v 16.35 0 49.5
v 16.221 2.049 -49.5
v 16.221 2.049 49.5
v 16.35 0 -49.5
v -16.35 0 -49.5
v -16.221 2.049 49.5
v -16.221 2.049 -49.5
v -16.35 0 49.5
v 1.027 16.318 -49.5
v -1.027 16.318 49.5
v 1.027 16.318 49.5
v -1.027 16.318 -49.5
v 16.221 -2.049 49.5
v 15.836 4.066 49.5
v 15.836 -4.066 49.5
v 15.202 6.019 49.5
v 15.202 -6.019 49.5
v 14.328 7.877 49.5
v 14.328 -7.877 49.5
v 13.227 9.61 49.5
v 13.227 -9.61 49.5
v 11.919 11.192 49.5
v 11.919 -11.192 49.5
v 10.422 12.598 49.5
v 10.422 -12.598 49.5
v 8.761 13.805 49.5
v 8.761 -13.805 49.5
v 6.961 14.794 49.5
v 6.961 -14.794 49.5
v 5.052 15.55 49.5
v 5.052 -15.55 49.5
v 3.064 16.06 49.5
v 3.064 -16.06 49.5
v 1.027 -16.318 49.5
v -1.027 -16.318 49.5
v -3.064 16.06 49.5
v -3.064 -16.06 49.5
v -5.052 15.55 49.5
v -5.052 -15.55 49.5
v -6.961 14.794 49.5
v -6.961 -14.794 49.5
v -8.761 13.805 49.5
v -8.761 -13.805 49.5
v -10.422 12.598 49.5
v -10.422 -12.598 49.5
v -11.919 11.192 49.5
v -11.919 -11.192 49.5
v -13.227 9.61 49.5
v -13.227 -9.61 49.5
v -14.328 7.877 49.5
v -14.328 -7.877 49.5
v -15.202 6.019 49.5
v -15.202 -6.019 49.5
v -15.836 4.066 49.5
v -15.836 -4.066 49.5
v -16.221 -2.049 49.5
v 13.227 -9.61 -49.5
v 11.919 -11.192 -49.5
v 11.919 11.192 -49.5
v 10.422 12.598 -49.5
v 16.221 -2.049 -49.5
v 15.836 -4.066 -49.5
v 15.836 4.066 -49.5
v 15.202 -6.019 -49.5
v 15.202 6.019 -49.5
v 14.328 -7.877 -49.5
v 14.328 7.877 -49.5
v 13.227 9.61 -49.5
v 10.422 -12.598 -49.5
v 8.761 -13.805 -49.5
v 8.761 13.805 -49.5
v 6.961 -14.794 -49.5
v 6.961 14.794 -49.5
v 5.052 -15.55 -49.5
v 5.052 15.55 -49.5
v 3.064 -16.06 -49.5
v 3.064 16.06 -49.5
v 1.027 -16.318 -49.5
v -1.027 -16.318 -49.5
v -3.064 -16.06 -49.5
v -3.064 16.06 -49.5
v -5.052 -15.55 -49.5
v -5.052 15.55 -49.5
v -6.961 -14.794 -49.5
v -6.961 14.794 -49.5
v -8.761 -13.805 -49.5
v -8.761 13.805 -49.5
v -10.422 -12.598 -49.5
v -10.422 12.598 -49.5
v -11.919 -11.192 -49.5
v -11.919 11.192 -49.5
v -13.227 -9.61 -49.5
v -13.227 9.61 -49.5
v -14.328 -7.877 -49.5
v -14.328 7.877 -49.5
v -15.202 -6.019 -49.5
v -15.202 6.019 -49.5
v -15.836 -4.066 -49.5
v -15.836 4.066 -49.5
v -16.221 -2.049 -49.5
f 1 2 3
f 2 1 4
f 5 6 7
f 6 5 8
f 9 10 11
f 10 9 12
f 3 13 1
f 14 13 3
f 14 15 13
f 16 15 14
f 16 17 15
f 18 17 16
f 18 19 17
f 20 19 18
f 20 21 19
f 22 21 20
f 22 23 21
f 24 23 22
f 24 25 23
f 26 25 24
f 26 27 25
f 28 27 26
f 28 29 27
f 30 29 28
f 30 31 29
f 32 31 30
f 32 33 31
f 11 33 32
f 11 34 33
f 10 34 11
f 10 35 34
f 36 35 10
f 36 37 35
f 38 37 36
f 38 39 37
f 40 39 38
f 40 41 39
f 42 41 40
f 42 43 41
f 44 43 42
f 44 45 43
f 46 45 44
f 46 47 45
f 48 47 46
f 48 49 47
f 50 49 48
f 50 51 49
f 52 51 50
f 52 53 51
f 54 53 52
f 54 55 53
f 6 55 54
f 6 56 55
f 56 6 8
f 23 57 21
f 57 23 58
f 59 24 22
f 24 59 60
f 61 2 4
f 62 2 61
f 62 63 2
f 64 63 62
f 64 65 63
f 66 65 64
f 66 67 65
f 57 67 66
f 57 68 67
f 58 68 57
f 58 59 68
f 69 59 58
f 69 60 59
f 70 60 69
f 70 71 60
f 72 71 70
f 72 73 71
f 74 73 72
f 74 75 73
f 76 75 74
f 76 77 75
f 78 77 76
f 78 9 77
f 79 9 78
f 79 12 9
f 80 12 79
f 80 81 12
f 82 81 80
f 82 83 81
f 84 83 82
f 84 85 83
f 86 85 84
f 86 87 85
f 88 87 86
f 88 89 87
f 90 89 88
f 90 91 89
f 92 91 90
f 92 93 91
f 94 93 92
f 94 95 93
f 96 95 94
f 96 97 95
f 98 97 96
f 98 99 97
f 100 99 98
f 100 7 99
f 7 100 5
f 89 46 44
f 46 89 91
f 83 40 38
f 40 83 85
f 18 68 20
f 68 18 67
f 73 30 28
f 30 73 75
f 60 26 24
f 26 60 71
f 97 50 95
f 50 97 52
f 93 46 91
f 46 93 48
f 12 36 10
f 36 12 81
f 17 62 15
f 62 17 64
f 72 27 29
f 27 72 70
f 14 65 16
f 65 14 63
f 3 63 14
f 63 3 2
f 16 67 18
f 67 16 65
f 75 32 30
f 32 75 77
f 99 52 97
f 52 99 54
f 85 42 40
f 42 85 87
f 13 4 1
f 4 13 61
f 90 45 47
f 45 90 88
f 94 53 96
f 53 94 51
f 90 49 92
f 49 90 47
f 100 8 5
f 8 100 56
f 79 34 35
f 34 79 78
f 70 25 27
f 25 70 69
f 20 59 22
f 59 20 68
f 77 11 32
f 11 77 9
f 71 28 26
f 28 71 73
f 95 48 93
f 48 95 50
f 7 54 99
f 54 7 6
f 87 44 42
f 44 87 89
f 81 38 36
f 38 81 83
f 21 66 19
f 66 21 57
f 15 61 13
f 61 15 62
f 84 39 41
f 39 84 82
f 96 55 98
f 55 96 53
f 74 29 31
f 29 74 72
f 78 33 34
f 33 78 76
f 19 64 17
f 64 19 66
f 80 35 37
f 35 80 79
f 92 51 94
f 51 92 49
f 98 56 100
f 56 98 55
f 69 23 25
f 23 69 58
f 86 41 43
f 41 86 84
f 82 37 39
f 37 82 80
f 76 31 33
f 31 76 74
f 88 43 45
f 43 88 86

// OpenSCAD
$fn = 50;


difference() {
	union() {
		translate(v = [0, 0, -49.5000000000]) {
			cylinder(h = 99, r = 16.3500000000);
		}
	}
	union() {
		translate(v = [0, 0, -100.0000000000]) {
			cylinder(h = 200, r = 0);
		}
	}
}
